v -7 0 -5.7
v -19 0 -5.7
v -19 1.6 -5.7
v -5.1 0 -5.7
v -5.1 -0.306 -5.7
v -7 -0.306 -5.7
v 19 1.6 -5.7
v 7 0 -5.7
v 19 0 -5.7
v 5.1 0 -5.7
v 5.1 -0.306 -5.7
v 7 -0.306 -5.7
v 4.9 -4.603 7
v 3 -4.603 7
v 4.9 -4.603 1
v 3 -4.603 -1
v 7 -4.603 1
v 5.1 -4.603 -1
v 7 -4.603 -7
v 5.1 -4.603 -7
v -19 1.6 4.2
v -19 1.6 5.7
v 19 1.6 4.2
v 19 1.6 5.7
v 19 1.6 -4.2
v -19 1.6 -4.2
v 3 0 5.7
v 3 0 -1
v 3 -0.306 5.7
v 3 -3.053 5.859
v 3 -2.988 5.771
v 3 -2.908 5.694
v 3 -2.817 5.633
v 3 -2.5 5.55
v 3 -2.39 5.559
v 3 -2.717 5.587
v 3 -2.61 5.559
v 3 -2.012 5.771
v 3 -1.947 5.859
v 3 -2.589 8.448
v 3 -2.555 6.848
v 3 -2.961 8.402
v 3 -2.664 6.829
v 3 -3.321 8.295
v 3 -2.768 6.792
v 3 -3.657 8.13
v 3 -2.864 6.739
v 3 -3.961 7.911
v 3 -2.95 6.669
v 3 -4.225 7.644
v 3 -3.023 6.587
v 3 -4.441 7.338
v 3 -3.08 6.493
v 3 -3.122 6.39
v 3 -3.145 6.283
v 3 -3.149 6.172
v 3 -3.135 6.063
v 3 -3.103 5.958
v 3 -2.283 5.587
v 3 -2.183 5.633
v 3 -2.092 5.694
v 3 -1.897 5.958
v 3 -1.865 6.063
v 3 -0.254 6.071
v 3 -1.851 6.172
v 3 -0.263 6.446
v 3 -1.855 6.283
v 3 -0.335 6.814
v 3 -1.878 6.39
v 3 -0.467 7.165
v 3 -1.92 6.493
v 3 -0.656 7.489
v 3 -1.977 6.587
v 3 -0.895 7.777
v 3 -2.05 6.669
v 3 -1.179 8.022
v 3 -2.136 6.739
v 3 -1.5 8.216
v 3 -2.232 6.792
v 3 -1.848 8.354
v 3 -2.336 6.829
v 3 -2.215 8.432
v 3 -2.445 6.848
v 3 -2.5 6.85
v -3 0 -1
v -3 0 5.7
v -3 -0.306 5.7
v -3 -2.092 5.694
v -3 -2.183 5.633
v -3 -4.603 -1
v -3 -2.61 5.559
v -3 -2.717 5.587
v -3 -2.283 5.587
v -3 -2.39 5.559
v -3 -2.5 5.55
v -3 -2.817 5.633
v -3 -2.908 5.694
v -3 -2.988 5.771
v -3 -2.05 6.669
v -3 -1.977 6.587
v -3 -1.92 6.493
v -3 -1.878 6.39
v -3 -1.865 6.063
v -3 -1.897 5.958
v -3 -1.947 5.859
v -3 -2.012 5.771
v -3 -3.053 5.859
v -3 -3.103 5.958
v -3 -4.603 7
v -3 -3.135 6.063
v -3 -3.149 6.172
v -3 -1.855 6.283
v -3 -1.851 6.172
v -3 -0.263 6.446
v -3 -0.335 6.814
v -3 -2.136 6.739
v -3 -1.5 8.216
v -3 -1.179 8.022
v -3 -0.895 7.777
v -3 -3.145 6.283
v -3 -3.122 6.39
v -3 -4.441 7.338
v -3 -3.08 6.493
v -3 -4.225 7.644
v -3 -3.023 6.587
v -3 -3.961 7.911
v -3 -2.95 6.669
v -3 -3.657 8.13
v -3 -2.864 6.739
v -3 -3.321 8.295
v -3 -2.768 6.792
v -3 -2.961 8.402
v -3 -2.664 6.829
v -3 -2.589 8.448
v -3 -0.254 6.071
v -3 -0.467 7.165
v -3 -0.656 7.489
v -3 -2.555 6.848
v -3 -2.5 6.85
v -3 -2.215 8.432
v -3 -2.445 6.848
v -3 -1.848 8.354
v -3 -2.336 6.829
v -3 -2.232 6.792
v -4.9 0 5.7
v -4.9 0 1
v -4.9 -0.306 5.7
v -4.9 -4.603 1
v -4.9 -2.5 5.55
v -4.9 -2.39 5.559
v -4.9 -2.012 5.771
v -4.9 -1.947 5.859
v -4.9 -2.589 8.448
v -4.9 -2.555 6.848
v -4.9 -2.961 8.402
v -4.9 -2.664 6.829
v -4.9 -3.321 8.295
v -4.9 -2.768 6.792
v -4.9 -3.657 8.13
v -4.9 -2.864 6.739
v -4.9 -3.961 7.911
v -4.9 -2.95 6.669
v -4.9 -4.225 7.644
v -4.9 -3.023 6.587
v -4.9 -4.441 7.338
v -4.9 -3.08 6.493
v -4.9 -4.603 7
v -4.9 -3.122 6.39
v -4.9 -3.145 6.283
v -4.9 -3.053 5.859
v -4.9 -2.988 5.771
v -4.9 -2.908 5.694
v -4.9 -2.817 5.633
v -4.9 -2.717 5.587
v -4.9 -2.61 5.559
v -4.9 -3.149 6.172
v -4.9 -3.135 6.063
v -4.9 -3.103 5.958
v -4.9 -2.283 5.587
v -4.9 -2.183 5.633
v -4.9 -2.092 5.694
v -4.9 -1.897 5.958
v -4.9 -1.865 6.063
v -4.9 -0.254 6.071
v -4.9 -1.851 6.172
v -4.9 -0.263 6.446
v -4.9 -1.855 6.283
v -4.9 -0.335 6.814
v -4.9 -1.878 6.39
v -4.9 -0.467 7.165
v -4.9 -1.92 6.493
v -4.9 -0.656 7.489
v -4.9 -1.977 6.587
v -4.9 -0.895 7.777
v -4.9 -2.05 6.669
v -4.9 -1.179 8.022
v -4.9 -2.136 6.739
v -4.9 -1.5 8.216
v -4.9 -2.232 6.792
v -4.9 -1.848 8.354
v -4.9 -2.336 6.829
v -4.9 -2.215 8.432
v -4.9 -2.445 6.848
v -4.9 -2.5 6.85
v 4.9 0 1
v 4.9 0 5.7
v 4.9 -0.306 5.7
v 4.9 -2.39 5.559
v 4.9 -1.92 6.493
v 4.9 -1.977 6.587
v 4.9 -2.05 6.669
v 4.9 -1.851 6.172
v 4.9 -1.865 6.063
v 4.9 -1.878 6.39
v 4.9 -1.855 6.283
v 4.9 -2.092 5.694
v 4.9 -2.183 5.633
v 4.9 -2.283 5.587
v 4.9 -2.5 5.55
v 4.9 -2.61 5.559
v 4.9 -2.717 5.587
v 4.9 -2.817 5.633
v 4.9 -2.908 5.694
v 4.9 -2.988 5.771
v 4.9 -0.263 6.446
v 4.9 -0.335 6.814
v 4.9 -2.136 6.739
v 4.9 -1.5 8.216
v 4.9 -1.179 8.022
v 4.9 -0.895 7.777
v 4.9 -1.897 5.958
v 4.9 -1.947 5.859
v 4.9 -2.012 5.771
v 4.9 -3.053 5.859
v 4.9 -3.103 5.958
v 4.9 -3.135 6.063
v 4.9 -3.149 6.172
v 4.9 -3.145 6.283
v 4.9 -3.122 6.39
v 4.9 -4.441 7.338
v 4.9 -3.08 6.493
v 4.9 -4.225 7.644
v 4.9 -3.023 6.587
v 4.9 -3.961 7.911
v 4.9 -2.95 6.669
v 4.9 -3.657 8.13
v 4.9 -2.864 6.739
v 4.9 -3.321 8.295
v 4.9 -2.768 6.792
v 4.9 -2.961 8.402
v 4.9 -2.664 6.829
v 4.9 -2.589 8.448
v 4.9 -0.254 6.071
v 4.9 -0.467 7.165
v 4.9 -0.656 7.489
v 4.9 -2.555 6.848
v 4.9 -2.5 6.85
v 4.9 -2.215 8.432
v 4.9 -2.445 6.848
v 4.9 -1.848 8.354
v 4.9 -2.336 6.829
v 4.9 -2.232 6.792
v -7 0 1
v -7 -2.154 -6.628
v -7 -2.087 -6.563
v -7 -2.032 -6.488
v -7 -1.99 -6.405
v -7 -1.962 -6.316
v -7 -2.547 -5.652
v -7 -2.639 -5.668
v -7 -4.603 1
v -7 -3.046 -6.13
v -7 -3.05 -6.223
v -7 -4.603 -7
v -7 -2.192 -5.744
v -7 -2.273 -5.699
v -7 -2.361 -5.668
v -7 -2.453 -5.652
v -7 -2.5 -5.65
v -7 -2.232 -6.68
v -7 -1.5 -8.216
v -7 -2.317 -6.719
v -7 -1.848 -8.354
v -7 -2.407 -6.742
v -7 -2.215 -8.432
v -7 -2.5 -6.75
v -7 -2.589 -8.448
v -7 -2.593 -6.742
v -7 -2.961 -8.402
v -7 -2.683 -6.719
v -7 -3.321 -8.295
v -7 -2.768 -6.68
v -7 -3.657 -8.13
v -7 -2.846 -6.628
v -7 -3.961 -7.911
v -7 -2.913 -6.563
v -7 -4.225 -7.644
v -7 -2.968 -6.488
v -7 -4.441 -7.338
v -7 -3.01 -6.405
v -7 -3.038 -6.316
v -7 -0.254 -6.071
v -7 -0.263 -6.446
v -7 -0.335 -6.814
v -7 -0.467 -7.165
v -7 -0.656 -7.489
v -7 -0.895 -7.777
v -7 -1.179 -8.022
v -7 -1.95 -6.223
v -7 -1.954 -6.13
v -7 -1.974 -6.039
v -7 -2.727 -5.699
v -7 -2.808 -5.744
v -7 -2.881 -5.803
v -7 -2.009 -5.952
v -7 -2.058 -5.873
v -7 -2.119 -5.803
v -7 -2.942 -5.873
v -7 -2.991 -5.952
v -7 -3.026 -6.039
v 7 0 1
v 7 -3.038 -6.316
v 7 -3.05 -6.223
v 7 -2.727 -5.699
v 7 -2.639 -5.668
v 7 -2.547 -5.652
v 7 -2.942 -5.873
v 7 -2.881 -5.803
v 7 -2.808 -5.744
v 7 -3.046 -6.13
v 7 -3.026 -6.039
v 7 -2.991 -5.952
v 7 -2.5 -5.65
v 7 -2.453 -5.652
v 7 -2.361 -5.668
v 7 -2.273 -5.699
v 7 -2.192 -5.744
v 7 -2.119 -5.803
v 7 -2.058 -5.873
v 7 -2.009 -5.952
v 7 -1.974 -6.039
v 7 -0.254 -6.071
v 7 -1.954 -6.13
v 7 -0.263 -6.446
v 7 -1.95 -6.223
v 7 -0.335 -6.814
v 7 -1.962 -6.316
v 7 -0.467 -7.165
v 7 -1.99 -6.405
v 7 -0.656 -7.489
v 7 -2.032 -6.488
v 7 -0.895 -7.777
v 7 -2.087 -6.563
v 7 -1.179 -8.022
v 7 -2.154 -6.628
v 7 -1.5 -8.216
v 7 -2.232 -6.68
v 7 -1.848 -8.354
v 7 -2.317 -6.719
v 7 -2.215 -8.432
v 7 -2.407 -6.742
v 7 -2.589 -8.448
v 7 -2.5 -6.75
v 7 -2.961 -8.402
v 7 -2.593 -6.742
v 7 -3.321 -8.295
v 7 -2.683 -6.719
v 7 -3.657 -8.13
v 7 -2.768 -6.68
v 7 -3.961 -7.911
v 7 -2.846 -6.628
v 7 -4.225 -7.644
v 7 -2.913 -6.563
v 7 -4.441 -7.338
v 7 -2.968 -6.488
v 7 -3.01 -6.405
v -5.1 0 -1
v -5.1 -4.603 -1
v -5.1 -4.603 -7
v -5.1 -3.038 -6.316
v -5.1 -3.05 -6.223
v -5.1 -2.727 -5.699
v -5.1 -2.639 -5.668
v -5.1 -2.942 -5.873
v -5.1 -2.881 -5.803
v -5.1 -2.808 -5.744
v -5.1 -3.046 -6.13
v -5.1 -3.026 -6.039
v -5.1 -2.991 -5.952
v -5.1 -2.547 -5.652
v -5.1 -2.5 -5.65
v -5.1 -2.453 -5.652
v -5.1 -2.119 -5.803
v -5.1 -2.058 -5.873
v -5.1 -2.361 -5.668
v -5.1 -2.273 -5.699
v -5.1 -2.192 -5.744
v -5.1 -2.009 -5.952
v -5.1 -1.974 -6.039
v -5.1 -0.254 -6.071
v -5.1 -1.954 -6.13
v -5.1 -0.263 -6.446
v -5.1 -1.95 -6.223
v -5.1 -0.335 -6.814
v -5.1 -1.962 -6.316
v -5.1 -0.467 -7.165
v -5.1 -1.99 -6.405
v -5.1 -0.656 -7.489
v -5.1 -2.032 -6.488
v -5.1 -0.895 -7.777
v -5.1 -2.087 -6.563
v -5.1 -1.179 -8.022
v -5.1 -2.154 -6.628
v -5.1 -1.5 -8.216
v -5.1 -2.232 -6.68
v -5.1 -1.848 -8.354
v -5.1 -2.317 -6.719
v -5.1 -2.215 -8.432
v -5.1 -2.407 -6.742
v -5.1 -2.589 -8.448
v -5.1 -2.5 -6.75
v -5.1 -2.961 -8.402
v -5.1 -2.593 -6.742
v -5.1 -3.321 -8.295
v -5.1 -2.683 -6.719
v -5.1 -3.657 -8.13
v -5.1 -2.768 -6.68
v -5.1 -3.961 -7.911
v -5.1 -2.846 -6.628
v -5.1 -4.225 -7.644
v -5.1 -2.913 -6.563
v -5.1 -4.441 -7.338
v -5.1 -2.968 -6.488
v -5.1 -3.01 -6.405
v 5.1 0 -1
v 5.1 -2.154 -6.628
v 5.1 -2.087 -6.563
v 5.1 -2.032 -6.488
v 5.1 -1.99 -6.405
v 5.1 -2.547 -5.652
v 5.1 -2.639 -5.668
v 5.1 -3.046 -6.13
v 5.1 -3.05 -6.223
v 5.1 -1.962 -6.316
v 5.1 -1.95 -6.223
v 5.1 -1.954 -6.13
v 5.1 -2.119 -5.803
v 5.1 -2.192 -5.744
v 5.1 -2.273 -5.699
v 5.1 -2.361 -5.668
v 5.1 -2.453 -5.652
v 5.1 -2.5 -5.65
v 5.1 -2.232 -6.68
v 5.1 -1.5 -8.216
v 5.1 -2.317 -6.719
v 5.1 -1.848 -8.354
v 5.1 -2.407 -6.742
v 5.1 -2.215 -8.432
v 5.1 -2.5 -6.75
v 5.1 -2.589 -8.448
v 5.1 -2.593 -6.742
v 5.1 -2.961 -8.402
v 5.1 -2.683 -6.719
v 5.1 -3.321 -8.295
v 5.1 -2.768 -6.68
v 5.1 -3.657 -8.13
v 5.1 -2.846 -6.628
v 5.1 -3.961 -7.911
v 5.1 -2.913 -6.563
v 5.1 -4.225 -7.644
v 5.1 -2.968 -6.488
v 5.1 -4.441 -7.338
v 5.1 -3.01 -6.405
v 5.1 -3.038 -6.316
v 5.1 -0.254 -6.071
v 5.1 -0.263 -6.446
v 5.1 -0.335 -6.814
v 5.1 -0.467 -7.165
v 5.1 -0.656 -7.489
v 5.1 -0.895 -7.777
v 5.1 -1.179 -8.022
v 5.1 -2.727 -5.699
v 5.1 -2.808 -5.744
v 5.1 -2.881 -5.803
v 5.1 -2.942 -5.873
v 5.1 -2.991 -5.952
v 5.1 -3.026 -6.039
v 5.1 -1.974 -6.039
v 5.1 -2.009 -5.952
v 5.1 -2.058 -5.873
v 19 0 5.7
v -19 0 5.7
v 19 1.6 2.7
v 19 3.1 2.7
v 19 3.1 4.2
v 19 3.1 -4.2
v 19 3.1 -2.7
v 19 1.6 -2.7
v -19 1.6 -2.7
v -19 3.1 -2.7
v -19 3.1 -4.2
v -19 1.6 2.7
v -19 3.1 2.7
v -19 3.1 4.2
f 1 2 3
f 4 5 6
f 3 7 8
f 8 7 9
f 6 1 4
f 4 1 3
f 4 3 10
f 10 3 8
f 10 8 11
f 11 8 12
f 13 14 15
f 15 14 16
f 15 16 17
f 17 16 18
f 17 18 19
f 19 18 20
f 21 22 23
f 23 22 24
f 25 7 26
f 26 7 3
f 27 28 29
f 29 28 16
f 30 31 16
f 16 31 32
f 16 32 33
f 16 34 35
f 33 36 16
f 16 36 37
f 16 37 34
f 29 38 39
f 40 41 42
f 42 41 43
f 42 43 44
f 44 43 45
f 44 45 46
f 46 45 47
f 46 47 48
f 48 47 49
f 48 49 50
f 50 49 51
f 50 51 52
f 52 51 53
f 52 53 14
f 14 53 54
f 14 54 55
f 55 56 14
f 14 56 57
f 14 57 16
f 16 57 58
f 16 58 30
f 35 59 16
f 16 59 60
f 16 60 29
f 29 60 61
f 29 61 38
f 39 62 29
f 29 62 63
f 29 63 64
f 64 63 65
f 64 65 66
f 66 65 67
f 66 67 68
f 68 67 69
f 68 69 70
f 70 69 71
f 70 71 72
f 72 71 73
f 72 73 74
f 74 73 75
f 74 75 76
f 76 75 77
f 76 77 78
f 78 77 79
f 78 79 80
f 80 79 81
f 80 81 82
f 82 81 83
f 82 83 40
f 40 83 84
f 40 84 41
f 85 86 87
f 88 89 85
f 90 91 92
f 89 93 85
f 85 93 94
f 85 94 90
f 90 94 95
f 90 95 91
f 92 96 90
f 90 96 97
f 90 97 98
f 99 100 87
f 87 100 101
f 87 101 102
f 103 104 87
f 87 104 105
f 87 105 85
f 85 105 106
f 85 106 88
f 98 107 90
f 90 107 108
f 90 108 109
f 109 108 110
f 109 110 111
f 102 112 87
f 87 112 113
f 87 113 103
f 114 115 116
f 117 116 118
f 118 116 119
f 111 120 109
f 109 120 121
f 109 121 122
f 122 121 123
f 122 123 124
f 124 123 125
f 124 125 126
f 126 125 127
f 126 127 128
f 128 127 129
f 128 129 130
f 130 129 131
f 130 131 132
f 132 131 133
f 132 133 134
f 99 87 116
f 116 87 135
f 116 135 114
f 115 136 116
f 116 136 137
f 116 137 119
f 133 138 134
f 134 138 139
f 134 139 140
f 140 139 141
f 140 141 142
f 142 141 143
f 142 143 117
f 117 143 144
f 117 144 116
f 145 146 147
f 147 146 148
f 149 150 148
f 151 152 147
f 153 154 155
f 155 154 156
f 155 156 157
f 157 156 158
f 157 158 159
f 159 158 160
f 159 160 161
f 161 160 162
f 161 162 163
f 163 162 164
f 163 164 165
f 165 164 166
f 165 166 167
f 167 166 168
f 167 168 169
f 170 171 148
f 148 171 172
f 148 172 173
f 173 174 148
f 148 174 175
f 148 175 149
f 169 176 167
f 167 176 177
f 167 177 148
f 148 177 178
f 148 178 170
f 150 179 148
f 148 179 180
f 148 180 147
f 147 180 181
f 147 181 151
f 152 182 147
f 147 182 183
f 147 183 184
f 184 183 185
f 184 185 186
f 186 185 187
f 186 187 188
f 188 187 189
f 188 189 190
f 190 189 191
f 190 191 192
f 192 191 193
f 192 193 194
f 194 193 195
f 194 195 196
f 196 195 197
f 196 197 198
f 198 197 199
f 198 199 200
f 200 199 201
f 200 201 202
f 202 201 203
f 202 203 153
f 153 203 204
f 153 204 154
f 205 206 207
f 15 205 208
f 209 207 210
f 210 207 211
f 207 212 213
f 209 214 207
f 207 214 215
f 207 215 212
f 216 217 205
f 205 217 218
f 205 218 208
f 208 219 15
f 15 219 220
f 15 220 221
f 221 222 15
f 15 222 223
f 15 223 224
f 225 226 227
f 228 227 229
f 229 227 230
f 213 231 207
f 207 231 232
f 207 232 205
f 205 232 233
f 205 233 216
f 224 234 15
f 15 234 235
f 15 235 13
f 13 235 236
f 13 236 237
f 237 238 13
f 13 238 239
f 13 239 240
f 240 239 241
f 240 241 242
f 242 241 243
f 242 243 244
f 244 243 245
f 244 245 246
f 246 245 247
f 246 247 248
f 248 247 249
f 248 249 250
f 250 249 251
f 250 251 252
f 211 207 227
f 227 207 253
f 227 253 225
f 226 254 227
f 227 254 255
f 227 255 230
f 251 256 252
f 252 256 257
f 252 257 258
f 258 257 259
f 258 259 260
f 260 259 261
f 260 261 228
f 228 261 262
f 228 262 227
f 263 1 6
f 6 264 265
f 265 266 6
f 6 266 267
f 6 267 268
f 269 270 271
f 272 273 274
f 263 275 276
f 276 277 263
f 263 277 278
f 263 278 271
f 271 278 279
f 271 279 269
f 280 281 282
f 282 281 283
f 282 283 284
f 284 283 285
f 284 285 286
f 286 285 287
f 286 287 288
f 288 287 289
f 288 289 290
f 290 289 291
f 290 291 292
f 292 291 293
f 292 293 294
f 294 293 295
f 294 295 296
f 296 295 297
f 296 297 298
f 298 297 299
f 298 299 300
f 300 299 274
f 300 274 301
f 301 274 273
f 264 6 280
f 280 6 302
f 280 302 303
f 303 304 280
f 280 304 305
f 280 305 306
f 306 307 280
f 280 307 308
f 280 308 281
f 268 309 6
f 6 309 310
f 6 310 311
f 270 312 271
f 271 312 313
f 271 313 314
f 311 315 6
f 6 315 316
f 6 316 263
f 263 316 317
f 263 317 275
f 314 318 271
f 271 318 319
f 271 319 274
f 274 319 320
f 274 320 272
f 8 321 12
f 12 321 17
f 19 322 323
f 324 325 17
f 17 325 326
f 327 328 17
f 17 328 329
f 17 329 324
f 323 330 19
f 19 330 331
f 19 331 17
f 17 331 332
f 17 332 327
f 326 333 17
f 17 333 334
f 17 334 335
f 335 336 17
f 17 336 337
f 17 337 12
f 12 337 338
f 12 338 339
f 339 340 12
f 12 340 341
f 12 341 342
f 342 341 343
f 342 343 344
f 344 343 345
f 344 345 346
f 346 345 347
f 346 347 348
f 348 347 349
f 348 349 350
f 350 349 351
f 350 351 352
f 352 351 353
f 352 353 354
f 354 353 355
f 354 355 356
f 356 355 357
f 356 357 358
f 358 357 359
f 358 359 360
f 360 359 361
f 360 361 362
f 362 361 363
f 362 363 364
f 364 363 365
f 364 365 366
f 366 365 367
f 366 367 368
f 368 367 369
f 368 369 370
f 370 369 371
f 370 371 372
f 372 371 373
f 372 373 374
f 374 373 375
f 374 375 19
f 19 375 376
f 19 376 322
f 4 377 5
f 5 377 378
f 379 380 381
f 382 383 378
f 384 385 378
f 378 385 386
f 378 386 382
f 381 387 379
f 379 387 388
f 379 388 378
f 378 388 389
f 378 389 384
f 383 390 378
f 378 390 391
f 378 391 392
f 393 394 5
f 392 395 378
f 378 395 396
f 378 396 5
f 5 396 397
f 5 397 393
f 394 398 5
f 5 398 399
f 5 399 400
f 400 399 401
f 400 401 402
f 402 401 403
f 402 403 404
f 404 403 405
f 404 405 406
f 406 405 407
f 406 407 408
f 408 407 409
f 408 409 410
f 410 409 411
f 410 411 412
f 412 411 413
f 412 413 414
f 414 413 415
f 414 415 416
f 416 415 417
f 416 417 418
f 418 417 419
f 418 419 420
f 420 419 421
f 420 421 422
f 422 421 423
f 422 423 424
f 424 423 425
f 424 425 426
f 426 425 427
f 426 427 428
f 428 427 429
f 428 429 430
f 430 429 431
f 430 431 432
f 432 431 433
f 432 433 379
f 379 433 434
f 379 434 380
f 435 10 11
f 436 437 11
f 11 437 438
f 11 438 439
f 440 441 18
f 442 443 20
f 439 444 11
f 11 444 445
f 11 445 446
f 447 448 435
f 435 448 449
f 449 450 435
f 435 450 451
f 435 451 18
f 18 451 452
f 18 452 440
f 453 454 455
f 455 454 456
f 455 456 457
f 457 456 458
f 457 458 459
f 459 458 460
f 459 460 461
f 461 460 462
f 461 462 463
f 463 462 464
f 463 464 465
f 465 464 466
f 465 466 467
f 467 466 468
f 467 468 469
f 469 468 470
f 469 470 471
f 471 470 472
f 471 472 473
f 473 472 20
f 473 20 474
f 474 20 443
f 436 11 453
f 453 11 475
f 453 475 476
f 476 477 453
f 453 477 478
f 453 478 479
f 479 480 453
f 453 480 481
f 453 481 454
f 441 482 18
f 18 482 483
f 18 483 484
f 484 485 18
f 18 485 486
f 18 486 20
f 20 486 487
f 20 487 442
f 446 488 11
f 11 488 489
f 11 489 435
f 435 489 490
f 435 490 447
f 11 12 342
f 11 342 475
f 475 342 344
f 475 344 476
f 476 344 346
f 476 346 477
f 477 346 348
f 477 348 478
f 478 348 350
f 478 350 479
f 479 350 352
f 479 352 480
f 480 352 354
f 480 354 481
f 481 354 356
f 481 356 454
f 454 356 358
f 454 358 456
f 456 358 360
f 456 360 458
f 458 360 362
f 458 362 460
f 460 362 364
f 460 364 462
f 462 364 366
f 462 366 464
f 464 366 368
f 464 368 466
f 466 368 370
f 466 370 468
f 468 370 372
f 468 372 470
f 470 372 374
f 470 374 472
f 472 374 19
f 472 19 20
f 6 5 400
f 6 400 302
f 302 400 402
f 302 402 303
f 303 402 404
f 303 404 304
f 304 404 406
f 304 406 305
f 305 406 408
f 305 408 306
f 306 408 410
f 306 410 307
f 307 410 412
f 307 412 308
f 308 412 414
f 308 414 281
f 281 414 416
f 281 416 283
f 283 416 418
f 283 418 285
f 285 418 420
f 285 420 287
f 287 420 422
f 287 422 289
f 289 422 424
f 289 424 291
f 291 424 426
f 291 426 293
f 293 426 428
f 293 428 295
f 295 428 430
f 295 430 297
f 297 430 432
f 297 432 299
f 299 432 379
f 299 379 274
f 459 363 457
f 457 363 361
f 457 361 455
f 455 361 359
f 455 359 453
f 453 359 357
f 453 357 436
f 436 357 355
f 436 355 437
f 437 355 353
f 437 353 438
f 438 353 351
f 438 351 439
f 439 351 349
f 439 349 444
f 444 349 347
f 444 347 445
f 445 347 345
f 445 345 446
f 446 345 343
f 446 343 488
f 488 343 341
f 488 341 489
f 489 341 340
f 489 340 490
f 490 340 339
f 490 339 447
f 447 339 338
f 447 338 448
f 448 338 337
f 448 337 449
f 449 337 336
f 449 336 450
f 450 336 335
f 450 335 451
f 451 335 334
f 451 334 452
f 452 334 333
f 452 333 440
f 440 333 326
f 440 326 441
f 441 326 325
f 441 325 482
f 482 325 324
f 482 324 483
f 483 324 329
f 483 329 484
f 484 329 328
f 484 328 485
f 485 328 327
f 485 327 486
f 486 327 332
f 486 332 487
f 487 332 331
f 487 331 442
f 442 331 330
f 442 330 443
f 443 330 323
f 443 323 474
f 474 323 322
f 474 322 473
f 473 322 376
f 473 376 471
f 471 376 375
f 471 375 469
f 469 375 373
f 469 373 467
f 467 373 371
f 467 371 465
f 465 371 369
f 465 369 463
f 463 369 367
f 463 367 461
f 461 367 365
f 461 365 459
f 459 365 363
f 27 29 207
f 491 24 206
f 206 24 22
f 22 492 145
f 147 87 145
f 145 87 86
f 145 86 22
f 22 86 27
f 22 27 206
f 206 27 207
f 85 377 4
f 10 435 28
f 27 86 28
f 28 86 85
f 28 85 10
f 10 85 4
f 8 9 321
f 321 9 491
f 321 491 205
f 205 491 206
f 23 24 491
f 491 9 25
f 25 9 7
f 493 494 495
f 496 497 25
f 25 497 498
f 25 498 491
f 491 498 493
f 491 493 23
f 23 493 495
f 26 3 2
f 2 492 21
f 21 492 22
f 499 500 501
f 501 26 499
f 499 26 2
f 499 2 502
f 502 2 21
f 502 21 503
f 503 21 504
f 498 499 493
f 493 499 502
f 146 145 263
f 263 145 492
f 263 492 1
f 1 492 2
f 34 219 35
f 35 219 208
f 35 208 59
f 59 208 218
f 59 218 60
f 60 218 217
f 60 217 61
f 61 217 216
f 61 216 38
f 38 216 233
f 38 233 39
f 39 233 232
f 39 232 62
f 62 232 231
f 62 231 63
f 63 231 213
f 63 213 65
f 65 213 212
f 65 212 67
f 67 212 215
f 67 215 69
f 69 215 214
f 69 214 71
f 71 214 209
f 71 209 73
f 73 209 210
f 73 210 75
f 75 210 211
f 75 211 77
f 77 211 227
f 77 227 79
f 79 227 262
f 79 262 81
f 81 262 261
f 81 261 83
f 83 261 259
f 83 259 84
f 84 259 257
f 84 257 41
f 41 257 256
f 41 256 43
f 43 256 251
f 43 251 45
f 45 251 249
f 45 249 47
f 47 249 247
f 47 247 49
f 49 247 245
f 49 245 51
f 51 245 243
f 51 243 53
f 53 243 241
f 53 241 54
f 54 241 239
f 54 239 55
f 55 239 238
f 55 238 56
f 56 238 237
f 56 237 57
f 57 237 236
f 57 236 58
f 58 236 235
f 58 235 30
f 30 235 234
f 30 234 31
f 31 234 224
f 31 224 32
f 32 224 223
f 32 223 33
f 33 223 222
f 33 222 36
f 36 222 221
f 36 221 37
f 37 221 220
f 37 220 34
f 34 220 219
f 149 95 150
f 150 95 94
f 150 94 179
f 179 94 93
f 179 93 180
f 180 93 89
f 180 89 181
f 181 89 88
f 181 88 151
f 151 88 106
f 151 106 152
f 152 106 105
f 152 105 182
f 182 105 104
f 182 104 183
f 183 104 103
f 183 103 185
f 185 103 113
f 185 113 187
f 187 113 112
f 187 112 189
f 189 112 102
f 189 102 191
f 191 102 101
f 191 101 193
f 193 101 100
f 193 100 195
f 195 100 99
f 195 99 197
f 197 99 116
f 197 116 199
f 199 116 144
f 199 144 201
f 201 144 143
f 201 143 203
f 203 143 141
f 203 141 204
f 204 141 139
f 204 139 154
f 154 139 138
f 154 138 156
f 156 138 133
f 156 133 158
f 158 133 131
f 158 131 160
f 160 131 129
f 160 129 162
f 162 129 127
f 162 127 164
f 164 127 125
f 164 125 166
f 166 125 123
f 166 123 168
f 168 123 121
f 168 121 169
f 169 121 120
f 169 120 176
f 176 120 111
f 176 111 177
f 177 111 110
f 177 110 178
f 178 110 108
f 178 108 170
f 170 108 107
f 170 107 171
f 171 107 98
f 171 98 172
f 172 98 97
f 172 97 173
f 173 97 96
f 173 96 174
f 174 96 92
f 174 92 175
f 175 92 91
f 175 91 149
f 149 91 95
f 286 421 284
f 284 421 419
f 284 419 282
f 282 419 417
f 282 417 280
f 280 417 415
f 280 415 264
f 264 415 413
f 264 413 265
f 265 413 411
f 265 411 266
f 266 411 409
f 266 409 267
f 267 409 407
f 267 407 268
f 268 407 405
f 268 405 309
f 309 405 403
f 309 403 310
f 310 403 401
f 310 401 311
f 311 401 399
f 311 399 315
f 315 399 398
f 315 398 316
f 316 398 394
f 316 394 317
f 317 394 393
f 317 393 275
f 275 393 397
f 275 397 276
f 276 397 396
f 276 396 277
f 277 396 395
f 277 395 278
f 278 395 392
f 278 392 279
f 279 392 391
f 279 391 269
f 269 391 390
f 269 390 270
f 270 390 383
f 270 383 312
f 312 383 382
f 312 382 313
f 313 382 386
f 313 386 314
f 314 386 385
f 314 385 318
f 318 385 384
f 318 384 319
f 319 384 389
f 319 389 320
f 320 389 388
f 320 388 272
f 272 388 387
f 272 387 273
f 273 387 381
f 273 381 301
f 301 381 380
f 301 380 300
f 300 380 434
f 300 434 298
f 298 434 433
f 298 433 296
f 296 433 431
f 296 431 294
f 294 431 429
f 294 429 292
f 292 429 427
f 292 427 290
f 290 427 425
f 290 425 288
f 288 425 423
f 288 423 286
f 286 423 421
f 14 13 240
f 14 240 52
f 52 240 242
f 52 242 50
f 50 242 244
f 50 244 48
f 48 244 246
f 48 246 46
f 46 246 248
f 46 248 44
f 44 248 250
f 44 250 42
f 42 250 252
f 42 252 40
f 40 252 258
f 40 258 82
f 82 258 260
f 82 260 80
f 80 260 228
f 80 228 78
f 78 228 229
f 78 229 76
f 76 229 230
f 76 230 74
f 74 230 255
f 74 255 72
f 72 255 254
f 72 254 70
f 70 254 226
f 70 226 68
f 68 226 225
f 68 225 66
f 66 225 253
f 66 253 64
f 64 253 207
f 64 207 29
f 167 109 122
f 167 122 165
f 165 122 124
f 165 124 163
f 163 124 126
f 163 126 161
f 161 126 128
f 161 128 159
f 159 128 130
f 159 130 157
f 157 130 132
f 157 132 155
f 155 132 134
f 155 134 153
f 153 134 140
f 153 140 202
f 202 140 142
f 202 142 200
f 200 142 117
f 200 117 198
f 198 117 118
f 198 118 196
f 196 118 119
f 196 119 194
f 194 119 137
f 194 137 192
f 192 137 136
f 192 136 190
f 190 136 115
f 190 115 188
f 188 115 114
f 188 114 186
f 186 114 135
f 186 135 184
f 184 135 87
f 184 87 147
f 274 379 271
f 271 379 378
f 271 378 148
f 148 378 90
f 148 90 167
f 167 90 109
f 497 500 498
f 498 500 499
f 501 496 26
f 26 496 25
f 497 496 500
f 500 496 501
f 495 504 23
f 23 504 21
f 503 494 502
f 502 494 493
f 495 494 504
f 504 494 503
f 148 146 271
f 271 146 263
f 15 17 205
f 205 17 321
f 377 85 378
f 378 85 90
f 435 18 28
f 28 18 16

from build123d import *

# Parameters (mm, degrees)
SKETCH_1_W                = 38
SKETCH_1_H                = 11.4
EXTRUDE_1_DEPTH           = 1.6
SKETCH_1_4_W              = 4
SKETCH_1_4_H              = 14
EXTRUDE_2_DEPTH           = 5
SKETCH_2_W                = 0.1
SKETCH_2_H                = 1.3
SKETCH_2_W_2              = 10
SKETCH_2_W_3              = 2
CUT_EXTRUDE_1_DEPTH       = 21.856653615
CUT_EXTRUDE_START         = 7
CUT_EXTRUDE_2_DEPTH       = 2.1
CUT_EXTRUDE_START_2       = -4.9
CUT_EXTRUDE_3_DEPTH       = 2.1
CUT_EXTRUDE_6_DEPTH       = 21.856653615
CUT_EXTRUDE_6_DEPTH_BACK  = 21.856653615
EXTRUDE_START             = 5.1
SKETCH_4_6_R              = 2.25
EXTRUDE_3_DEPTH           = 1.9
EXTRUDE_START_2           = -7
SKETCH_4_7_R              = 2.25
EXTRUDE_4_DEPTH           = 1.9
CUT_EXTRUDE_7_DEPTH       = 22.386970332
CUT_EXTRUDE_7_DEPTH_BACK  = 22.386970332
SKETCH_3_R                = 0.65
SKETCH_3_R_2              = 0.55
CUT_EXTRUDE_START_3       = 3
CUT_EXTRUDE_8_DEPTH       = 2.1
CUT_EXTRUDE_START_4       = -5.1
SKETCH_5_2_R              = 2.5
SKETCH_5_2_W              = 2.5
SKETCH_5_2_H              = 2.5
CUT_EXTRUDE_9_DEPTH       = 5.1
CUT_EXTRUDE_10_DEPTH      = 22.386970332
CUT_EXTRUDE_10_DEPTH_BACK = 22.386970332
EXTRUDE_START_3           = 3
EXTRUDE_5_DEPTH           = 1.9
EXTRUDE_START_4           = -4.9
EXTRUDE_6_DEPTH           = 1.9
CUT_EXTRUDE_11_DEPTH      = 22.386970332
CUT_EXTRUDE_11_DEPTH_BACK = 22.386970332
SKETCH_3_3_R              = 0.65
SKETCH_3_3_R_2            = 0.55
CUT_EXTRUDE_12_DEPTH      = 22.386970332
CUT_EXTRUDE_12_DEPTH_BACK = 22.386970332
SKETCH_9_W                = 15.45
SKETCH_9_H                = 0.397025916
SKETCH_10_W               = 38
SKETCH_10_H               = 1.5
EXTRUDE_7_DEPTH           = 1.5
FILLET_1_R                = 1
SKETCH_11_W               = 4.7
SKETCH_11_H               = 4.602974084
CUT_EXTRUDE_13_DEPTH      = 17.397649411
CUT_EXTRUDE_START_5       = 4.9
SKETCH_11_2_W             = 4.7
SKETCH_11_2_H             = 4.602974084
CUT_EXTRUDE_14_DEPTH      = 17.397649411
CUT_EXTRUDE_START_6       = 5.1
SKETCH_11_4_W             = 4.7
SKETCH_11_4_H             = 4.602974084
CUT_EXTRUDE_15_DEPTH      = 10.2


# Read off the part's stored shape, not the designer's step: 切除-拉伸8, 凸台-拉伸5, 凸台-拉伸6
with BuildPart() as part:
    # 草图1 → 凸台-拉伸1 (new body)
    with BuildSketch(Plane(origin=(0, 0, 0), x_dir=(1, 0, 0), z_dir=(0, 1, 0))):
        Rectangle(SKETCH_1_W, SKETCH_1_H)
    extrude(amount=EXTRUDE_1_DEPTH)

    # 草图1<4> → 凸台-拉伸2 (add)
    with BuildSketch(Plane(origin=(0, 0, 0), x_dir=(1, 0, 0), z_dir=(0, 1, 0))):
        with Locations((-5, 0)):
            Rectangle(SKETCH_1_4_W, SKETCH_1_4_H)
        with Locations((5, 0)):
            Rectangle(SKETCH_1_4_W, SKETCH_1_4_H)
    extrude(amount=-EXTRUDE_2_DEPTH)

    # 草图2 → 切除-拉伸1 (cut, through all)
    with BuildSketch(Plane(origin=(0, 0, 0), x_dir=(1, 0, 0), z_dir=(0, 1, 0))):
        with Locations((-5.05, 6.35)):
            Rectangle(SKETCH_2_W, SKETCH_2_H)
        with Locations((0, 6.35)):
            Rectangle(SKETCH_2_W_2, SKETCH_2_H)
        with Locations((5.05, 6.35)):
            Rectangle(SKETCH_2_W, SKETCH_2_H)
        with Locations((-6, -6.35)):
            Rectangle(SKETCH_2_W_3, SKETCH_2_H)
        with Locations((-4.95, -6.35)):
            Rectangle(SKETCH_2_W, SKETCH_2_H)
        with Locations((4.95, -6.35)):
            Rectangle(SKETCH_2_W, SKETCH_2_H)
        with Locations((6, -6.35)):
            Rectangle(SKETCH_2_W_3, SKETCH_2_H)
    extrude(amount=-CUT_EXTRUDE_1_DEPTH, mode=Mode.SUBTRACT)

    # 草图4 → 切除-拉伸2 (cut)
    with BuildSketch(Plane(origin=(0, 0, 0), x_dir=(0, 0, -1), z_dir=(1, 0, 0)).offset(CUT_EXTRUDE_START)):
        with BuildLine():
            ThreePointArc((-3.7, -2.5), (-4.263508327, -0.91886117), (-5.7, -0.050510257))
            Line((-5.7, -0.050510257), (-5.7, -5))
            Line((-5.7, -5), (-3.7, -5))
            Line((-3.7, -5), (-3.7, -2.5))
        make_face()
    extrude(amount=-CUT_EXTRUDE_2_DEPTH, mode=Mode.SUBTRACT)

    # 草图4<3> → 切除-拉伸3 (cut)
    with BuildSketch(Plane(origin=(0, 0, 0), x_dir=(0, 0, -1), z_dir=(1, 0, 0)).offset(CUT_EXTRUDE_START_2)):
        with BuildLine():
            ThreePointArc((-3.7, -2.5), (-4.263508327, -0.91886117), (-5.7, -0.050510257))
            Line((-5.7, -0.050510257), (-5.7, -5))
            Line((-5.7, -5), (-3.7, -5))
            Line((-3.7, -5), (-3.7, -2.5))
        make_face()
    extrude(amount=-CUT_EXTRUDE_3_DEPTH, mode=Mode.SUBTRACT)

    # 草图4<5> → 切除-拉伸6 (cut, two sides: drawn at the far end of the back side and taken through both)
    with BuildSketch(Plane(origin=(0, 0, 0), x_dir=(0, 0, -1), z_dir=(1, 0, 0)).offset(-CUT_EXTRUDE_6_DEPTH_BACK)):
        with BuildLine():
            Line((8.45, 0), (5.7, 0))
            Line((5.7, 0), (5.7, -0.306258903))
            ThreePointArc((5.7, -0.306258903), (7.60312152, -0.74109409), (8.45, -2.5))
            Line((8.45, -2.5), (8.45, 0))
        make_face()
        with BuildLine():
            Line((8.45, -5), (8.45, -2.5))
            ThreePointArc((8.45, -2.5), (7.60312152, -4.25890591), (5.7, -4.693741097))
            Line((5.7, -4.693741097), (5.7, -5))
            Line((5.7, -5), (8.45, -5))
        make_face()
    extrude(amount=CUT_EXTRUDE_6_DEPTH + CUT_EXTRUDE_6_DEPTH_BACK, mode=Mode.SUBTRACT)

    # 草图4<6> → 凸台-拉伸3 (add)
    with BuildSketch(Plane(origin=(0, 0, 0), x_dir=(0, 0, -1), z_dir=(1, 0, 0)).offset(EXTRUDE_START)):
        with Locations((6.2, -2.5)):
            Circle(SKETCH_4_6_R)
    extrude(amount=EXTRUDE_3_DEPTH)

    # 草图4<7> → 凸台-拉伸4 (add)
    with BuildSketch(Plane(origin=(0, 0, 0), x_dir=(0, 0, -1), z_dir=(1, 0, 0)).offset(EXTRUDE_START_2)):
        with Locations((6.2, -2.5)):
            Circle(SKETCH_4_7_R)
    extrude(amount=EXTRUDE_4_DEPTH)

    # 草图3 → 切除-拉伸7 (cut, two sides: drawn at the far end of the back side and taken through both)
    with BuildSketch(Plane(origin=(0, 0, 0), x_dir=(0, 0, -1), z_dir=(1, 0, 0)).offset(-CUT_EXTRUDE_7_DEPTH_BACK)):
        with Locations(Location((-6.2, -2.5, 0), (0, 0, 180))):
            Circle(SKETCH_3_R)
        with Locations(Location((6.2, -2.5, 0), (0, 0, 204.619977329))):
            Circle(SKETCH_3_R_2)
    extrude(amount=CUT_EXTRUDE_7_DEPTH + CUT_EXTRUDE_7_DEPTH_BACK, mode=Mode.SUBTRACT)

    # 切除-拉伸8 outline → 切除-拉伸8 (cut)
    with BuildSketch(Plane(origin=(0, 0, 0), x_dir=(0, 0, -1), z_dir=(1, 0, 0)).offset(CUT_EXTRUDE_START_3)):
        with BuildLine():
            Line((3.7, -2.5), (3.7, -5))
            Line((3.7, -5), (5.7, -5))
            Line((5.7, -5), (5.7, -2.729128785))
            ThreePointArc((5.7, -2.729128785), (5.65, -2.5), (5.7, -2.270871215))
            Line((5.7, -2.270871215), (5.7, -0.050510257))
            ThreePointArc((5.7, -0.050510257), (4.263508327, -0.91886117), (3.7, -2.5))
        make_face()
    extrude(amount=CUT_EXTRUDE_8_DEPTH, mode=Mode.SUBTRACT)

    # 草图5<2> → 切除-拉伸9 (cut)
    with BuildSketch(Plane(origin=(0, 0, 0), x_dir=(0, 0, -1), z_dir=(1, 0, 0)).offset(CUT_EXTRUDE_START_4)):
        with Locations((6.2, -2.5)):
            Circle(SKETCH_5_2_R)
        with Locations((4.95, -3.75)):
            Rectangle(SKETCH_5_2_W, SKETCH_5_2_H)
    extrude(amount=CUT_EXTRUDE_9_DEPTH, mode=Mode.SUBTRACT)

    # 草图7 → 切除-拉伸10 (cut, two sides: drawn at the far end of the back side and taken through both)
    with BuildSketch(Plane(origin=(0, 0, 0), x_dir=(0, 0, -1), z_dir=(1, 0, 0)).offset(-CUT_EXTRUDE_10_DEPTH_BACK)):
        with BuildLine():
            Line((-5.7, -0.306258903), (-5.7, 0))
            Line((-5.7, 0), (-8.45, 0))
            Line((-8.45, 0), (-8.45, -2.5))
            ThreePointArc((-8.45, -2.5), (-7.60312152, -0.74109409), (-5.7, -0.306258903))
        make_face()
    extrude(amount=CUT_EXTRUDE_10_DEPTH + CUT_EXTRUDE_10_DEPTH_BACK, mode=Mode.SUBTRACT)

    # 凸台-拉伸5 outline → 凸台-拉伸5 (add)
    with BuildSketch(Plane(origin=(0, 0, 0), x_dir=(0, 0, -1), z_dir=(1, 0, 0)).offset(EXTRUDE_START_3)):
        with BuildLine():
            Line((-7, -4.602974084), (-7, -0.397025915))
            ThreePointArc((-7, -0.397025915), (-8.45, -2.5), (-7, -4.602974084))
        make_face()
        with BuildLine():
            ThreePointArc((-5.7, -2.084668807), (-6.85, -2.5), (-5.7, -2.915331193))
            Line((-5.7, -2.915331193), (-5.7, -2.084668807))
        make_face()
    extrude(amount=EXTRUDE_5_DEPTH)

    # 凸台-拉伸6 outline → 凸台-拉伸6 (add)
    with BuildSketch(Plane(origin=(0, 0, 0), x_dir=(0, 0, -1), z_dir=(1, 0, 0)).offset(EXTRUDE_START_4)):
        with BuildLine():
            Line((-7, -4.602974084), (-7, -0.397025915))
            ThreePointArc((-7, -0.397025915), (-8.45, -2.5), (-7, -4.602974084))
        make_face()
        with BuildLine():
            ThreePointArc((-5.7, -2.084668807), (-6.85, -2.5), (-5.7, -2.915331193))
            Line((-5.7, -2.915331193), (-5.7, -2.084668807))
        make_face()
    extrude(amount=EXTRUDE_6_DEPTH)

    # 草图3<3> → 切除-拉伸11 (cut, two sides: drawn at the far end of the back side and taken through both)
    with BuildSketch(Plane(origin=(0, 0, 0), x_dir=(0, 0, -1), z_dir=(1, 0, 0)).offset(-CUT_EXTRUDE_11_DEPTH_BACK)):
        with Locations(Location((-6.2, -2.5, 0), (0, 0, 180))):
            Circle(SKETCH_3_3_R)
        with Locations(Location((6.2, -2.5, 0), (0, 0, 180))):
            Circle(SKETCH_3_3_R_2)
    extrude(amount=CUT_EXTRUDE_11_DEPTH + CUT_EXTRUDE_11_DEPTH_BACK, mode=Mode.SUBTRACT)

    # 草图9 → 切除-拉伸12 (cut, two sides: drawn at the far end of the back side and taken through both)
    with BuildSketch(Plane(origin=(0, 0, 0), x_dir=(0, 0, -1), z_dir=(1, 0, 0)).offset(-CUT_EXTRUDE_12_DEPTH_BACK)):
        with Locations((0.725, -4.801487042)):
            Rectangle(SKETCH_9_W, SKETCH_9_H)
    extrude(amount=CUT_EXTRUDE_12_DEPTH + CUT_EXTRUDE_12_DEPTH_BACK, mode=Mode.SUBTRACT)

    # 草图10 → 凸台-拉伸7 (add)
    with BuildSketch(Plane(origin=(0, 1.6, 0), x_dir=(1, 0, 0), z_dir=(0, 1, 0))):
        with Locations((0, 3.45)):
            Rectangle(SKETCH_10_W, SKETCH_10_H)
        with Locations((0, -3.45)):
            Rectangle(SKETCH_10_W, SKETCH_10_H)
    extrude(amount=EXTRUDE_7_DEPTH)

    # 圆角1
    fillet_1_edges = [part.edges().sort_by_distance(p)[0] for p in [
        (5.95, -4.602974084, 3.7),
        (4.05, -4.602974084, -3.7),
        (-4.05, -4.602974084, -3.7),
        (-5.95, -4.602974084, 3.7),
    ]]
    fillet(fillet_1_edges, radius=FILLET_1_R)

    # 草图11 → 切除-拉伸13 (cut, through all)
    with BuildSketch(Plane(origin=(0, 0, 0), x_dir=(0, 0, -1), z_dir=(1, 0, 0)).offset(CUT_EXTRUDE_START_2)):
        with Locations((-3.35, -2.301487042)):
            Rectangle(SKETCH_11_W, SKETCH_11_H)
    extrude(amount=-CUT_EXTRUDE_13_DEPTH, mode=Mode.SUBTRACT)

    # 草图11<2> → 切除-拉伸14 (cut, through all)
    with BuildSketch(Plane(origin=(0, 0, 0), x_dir=(0, 0, -1), z_dir=(1, 0, 0)).offset(CUT_EXTRUDE_START_5)):
        with Locations((-3.35, -2.301487042)):
            Rectangle(SKETCH_11_2_W, SKETCH_11_2_H)
    extrude(amount=CUT_EXTRUDE_14_DEPTH, mode=Mode.SUBTRACT)

    # 草图11<4> → 切除-拉伸15 (cut)
    with BuildSketch(Plane(origin=(0, 0, 0), x_dir=(0, 0, -1), z_dir=(1, 0, 0)).offset(CUT_EXTRUDE_START_6)):
        with Locations((3.35, -2.301487042)):
            Rectangle(SKETCH_11_4_W, SKETCH_11_4_H)
    extrude(amount=-CUT_EXTRUDE_15_DEPTH, mode=Mode.SUBTRACT)


solid = part.part
